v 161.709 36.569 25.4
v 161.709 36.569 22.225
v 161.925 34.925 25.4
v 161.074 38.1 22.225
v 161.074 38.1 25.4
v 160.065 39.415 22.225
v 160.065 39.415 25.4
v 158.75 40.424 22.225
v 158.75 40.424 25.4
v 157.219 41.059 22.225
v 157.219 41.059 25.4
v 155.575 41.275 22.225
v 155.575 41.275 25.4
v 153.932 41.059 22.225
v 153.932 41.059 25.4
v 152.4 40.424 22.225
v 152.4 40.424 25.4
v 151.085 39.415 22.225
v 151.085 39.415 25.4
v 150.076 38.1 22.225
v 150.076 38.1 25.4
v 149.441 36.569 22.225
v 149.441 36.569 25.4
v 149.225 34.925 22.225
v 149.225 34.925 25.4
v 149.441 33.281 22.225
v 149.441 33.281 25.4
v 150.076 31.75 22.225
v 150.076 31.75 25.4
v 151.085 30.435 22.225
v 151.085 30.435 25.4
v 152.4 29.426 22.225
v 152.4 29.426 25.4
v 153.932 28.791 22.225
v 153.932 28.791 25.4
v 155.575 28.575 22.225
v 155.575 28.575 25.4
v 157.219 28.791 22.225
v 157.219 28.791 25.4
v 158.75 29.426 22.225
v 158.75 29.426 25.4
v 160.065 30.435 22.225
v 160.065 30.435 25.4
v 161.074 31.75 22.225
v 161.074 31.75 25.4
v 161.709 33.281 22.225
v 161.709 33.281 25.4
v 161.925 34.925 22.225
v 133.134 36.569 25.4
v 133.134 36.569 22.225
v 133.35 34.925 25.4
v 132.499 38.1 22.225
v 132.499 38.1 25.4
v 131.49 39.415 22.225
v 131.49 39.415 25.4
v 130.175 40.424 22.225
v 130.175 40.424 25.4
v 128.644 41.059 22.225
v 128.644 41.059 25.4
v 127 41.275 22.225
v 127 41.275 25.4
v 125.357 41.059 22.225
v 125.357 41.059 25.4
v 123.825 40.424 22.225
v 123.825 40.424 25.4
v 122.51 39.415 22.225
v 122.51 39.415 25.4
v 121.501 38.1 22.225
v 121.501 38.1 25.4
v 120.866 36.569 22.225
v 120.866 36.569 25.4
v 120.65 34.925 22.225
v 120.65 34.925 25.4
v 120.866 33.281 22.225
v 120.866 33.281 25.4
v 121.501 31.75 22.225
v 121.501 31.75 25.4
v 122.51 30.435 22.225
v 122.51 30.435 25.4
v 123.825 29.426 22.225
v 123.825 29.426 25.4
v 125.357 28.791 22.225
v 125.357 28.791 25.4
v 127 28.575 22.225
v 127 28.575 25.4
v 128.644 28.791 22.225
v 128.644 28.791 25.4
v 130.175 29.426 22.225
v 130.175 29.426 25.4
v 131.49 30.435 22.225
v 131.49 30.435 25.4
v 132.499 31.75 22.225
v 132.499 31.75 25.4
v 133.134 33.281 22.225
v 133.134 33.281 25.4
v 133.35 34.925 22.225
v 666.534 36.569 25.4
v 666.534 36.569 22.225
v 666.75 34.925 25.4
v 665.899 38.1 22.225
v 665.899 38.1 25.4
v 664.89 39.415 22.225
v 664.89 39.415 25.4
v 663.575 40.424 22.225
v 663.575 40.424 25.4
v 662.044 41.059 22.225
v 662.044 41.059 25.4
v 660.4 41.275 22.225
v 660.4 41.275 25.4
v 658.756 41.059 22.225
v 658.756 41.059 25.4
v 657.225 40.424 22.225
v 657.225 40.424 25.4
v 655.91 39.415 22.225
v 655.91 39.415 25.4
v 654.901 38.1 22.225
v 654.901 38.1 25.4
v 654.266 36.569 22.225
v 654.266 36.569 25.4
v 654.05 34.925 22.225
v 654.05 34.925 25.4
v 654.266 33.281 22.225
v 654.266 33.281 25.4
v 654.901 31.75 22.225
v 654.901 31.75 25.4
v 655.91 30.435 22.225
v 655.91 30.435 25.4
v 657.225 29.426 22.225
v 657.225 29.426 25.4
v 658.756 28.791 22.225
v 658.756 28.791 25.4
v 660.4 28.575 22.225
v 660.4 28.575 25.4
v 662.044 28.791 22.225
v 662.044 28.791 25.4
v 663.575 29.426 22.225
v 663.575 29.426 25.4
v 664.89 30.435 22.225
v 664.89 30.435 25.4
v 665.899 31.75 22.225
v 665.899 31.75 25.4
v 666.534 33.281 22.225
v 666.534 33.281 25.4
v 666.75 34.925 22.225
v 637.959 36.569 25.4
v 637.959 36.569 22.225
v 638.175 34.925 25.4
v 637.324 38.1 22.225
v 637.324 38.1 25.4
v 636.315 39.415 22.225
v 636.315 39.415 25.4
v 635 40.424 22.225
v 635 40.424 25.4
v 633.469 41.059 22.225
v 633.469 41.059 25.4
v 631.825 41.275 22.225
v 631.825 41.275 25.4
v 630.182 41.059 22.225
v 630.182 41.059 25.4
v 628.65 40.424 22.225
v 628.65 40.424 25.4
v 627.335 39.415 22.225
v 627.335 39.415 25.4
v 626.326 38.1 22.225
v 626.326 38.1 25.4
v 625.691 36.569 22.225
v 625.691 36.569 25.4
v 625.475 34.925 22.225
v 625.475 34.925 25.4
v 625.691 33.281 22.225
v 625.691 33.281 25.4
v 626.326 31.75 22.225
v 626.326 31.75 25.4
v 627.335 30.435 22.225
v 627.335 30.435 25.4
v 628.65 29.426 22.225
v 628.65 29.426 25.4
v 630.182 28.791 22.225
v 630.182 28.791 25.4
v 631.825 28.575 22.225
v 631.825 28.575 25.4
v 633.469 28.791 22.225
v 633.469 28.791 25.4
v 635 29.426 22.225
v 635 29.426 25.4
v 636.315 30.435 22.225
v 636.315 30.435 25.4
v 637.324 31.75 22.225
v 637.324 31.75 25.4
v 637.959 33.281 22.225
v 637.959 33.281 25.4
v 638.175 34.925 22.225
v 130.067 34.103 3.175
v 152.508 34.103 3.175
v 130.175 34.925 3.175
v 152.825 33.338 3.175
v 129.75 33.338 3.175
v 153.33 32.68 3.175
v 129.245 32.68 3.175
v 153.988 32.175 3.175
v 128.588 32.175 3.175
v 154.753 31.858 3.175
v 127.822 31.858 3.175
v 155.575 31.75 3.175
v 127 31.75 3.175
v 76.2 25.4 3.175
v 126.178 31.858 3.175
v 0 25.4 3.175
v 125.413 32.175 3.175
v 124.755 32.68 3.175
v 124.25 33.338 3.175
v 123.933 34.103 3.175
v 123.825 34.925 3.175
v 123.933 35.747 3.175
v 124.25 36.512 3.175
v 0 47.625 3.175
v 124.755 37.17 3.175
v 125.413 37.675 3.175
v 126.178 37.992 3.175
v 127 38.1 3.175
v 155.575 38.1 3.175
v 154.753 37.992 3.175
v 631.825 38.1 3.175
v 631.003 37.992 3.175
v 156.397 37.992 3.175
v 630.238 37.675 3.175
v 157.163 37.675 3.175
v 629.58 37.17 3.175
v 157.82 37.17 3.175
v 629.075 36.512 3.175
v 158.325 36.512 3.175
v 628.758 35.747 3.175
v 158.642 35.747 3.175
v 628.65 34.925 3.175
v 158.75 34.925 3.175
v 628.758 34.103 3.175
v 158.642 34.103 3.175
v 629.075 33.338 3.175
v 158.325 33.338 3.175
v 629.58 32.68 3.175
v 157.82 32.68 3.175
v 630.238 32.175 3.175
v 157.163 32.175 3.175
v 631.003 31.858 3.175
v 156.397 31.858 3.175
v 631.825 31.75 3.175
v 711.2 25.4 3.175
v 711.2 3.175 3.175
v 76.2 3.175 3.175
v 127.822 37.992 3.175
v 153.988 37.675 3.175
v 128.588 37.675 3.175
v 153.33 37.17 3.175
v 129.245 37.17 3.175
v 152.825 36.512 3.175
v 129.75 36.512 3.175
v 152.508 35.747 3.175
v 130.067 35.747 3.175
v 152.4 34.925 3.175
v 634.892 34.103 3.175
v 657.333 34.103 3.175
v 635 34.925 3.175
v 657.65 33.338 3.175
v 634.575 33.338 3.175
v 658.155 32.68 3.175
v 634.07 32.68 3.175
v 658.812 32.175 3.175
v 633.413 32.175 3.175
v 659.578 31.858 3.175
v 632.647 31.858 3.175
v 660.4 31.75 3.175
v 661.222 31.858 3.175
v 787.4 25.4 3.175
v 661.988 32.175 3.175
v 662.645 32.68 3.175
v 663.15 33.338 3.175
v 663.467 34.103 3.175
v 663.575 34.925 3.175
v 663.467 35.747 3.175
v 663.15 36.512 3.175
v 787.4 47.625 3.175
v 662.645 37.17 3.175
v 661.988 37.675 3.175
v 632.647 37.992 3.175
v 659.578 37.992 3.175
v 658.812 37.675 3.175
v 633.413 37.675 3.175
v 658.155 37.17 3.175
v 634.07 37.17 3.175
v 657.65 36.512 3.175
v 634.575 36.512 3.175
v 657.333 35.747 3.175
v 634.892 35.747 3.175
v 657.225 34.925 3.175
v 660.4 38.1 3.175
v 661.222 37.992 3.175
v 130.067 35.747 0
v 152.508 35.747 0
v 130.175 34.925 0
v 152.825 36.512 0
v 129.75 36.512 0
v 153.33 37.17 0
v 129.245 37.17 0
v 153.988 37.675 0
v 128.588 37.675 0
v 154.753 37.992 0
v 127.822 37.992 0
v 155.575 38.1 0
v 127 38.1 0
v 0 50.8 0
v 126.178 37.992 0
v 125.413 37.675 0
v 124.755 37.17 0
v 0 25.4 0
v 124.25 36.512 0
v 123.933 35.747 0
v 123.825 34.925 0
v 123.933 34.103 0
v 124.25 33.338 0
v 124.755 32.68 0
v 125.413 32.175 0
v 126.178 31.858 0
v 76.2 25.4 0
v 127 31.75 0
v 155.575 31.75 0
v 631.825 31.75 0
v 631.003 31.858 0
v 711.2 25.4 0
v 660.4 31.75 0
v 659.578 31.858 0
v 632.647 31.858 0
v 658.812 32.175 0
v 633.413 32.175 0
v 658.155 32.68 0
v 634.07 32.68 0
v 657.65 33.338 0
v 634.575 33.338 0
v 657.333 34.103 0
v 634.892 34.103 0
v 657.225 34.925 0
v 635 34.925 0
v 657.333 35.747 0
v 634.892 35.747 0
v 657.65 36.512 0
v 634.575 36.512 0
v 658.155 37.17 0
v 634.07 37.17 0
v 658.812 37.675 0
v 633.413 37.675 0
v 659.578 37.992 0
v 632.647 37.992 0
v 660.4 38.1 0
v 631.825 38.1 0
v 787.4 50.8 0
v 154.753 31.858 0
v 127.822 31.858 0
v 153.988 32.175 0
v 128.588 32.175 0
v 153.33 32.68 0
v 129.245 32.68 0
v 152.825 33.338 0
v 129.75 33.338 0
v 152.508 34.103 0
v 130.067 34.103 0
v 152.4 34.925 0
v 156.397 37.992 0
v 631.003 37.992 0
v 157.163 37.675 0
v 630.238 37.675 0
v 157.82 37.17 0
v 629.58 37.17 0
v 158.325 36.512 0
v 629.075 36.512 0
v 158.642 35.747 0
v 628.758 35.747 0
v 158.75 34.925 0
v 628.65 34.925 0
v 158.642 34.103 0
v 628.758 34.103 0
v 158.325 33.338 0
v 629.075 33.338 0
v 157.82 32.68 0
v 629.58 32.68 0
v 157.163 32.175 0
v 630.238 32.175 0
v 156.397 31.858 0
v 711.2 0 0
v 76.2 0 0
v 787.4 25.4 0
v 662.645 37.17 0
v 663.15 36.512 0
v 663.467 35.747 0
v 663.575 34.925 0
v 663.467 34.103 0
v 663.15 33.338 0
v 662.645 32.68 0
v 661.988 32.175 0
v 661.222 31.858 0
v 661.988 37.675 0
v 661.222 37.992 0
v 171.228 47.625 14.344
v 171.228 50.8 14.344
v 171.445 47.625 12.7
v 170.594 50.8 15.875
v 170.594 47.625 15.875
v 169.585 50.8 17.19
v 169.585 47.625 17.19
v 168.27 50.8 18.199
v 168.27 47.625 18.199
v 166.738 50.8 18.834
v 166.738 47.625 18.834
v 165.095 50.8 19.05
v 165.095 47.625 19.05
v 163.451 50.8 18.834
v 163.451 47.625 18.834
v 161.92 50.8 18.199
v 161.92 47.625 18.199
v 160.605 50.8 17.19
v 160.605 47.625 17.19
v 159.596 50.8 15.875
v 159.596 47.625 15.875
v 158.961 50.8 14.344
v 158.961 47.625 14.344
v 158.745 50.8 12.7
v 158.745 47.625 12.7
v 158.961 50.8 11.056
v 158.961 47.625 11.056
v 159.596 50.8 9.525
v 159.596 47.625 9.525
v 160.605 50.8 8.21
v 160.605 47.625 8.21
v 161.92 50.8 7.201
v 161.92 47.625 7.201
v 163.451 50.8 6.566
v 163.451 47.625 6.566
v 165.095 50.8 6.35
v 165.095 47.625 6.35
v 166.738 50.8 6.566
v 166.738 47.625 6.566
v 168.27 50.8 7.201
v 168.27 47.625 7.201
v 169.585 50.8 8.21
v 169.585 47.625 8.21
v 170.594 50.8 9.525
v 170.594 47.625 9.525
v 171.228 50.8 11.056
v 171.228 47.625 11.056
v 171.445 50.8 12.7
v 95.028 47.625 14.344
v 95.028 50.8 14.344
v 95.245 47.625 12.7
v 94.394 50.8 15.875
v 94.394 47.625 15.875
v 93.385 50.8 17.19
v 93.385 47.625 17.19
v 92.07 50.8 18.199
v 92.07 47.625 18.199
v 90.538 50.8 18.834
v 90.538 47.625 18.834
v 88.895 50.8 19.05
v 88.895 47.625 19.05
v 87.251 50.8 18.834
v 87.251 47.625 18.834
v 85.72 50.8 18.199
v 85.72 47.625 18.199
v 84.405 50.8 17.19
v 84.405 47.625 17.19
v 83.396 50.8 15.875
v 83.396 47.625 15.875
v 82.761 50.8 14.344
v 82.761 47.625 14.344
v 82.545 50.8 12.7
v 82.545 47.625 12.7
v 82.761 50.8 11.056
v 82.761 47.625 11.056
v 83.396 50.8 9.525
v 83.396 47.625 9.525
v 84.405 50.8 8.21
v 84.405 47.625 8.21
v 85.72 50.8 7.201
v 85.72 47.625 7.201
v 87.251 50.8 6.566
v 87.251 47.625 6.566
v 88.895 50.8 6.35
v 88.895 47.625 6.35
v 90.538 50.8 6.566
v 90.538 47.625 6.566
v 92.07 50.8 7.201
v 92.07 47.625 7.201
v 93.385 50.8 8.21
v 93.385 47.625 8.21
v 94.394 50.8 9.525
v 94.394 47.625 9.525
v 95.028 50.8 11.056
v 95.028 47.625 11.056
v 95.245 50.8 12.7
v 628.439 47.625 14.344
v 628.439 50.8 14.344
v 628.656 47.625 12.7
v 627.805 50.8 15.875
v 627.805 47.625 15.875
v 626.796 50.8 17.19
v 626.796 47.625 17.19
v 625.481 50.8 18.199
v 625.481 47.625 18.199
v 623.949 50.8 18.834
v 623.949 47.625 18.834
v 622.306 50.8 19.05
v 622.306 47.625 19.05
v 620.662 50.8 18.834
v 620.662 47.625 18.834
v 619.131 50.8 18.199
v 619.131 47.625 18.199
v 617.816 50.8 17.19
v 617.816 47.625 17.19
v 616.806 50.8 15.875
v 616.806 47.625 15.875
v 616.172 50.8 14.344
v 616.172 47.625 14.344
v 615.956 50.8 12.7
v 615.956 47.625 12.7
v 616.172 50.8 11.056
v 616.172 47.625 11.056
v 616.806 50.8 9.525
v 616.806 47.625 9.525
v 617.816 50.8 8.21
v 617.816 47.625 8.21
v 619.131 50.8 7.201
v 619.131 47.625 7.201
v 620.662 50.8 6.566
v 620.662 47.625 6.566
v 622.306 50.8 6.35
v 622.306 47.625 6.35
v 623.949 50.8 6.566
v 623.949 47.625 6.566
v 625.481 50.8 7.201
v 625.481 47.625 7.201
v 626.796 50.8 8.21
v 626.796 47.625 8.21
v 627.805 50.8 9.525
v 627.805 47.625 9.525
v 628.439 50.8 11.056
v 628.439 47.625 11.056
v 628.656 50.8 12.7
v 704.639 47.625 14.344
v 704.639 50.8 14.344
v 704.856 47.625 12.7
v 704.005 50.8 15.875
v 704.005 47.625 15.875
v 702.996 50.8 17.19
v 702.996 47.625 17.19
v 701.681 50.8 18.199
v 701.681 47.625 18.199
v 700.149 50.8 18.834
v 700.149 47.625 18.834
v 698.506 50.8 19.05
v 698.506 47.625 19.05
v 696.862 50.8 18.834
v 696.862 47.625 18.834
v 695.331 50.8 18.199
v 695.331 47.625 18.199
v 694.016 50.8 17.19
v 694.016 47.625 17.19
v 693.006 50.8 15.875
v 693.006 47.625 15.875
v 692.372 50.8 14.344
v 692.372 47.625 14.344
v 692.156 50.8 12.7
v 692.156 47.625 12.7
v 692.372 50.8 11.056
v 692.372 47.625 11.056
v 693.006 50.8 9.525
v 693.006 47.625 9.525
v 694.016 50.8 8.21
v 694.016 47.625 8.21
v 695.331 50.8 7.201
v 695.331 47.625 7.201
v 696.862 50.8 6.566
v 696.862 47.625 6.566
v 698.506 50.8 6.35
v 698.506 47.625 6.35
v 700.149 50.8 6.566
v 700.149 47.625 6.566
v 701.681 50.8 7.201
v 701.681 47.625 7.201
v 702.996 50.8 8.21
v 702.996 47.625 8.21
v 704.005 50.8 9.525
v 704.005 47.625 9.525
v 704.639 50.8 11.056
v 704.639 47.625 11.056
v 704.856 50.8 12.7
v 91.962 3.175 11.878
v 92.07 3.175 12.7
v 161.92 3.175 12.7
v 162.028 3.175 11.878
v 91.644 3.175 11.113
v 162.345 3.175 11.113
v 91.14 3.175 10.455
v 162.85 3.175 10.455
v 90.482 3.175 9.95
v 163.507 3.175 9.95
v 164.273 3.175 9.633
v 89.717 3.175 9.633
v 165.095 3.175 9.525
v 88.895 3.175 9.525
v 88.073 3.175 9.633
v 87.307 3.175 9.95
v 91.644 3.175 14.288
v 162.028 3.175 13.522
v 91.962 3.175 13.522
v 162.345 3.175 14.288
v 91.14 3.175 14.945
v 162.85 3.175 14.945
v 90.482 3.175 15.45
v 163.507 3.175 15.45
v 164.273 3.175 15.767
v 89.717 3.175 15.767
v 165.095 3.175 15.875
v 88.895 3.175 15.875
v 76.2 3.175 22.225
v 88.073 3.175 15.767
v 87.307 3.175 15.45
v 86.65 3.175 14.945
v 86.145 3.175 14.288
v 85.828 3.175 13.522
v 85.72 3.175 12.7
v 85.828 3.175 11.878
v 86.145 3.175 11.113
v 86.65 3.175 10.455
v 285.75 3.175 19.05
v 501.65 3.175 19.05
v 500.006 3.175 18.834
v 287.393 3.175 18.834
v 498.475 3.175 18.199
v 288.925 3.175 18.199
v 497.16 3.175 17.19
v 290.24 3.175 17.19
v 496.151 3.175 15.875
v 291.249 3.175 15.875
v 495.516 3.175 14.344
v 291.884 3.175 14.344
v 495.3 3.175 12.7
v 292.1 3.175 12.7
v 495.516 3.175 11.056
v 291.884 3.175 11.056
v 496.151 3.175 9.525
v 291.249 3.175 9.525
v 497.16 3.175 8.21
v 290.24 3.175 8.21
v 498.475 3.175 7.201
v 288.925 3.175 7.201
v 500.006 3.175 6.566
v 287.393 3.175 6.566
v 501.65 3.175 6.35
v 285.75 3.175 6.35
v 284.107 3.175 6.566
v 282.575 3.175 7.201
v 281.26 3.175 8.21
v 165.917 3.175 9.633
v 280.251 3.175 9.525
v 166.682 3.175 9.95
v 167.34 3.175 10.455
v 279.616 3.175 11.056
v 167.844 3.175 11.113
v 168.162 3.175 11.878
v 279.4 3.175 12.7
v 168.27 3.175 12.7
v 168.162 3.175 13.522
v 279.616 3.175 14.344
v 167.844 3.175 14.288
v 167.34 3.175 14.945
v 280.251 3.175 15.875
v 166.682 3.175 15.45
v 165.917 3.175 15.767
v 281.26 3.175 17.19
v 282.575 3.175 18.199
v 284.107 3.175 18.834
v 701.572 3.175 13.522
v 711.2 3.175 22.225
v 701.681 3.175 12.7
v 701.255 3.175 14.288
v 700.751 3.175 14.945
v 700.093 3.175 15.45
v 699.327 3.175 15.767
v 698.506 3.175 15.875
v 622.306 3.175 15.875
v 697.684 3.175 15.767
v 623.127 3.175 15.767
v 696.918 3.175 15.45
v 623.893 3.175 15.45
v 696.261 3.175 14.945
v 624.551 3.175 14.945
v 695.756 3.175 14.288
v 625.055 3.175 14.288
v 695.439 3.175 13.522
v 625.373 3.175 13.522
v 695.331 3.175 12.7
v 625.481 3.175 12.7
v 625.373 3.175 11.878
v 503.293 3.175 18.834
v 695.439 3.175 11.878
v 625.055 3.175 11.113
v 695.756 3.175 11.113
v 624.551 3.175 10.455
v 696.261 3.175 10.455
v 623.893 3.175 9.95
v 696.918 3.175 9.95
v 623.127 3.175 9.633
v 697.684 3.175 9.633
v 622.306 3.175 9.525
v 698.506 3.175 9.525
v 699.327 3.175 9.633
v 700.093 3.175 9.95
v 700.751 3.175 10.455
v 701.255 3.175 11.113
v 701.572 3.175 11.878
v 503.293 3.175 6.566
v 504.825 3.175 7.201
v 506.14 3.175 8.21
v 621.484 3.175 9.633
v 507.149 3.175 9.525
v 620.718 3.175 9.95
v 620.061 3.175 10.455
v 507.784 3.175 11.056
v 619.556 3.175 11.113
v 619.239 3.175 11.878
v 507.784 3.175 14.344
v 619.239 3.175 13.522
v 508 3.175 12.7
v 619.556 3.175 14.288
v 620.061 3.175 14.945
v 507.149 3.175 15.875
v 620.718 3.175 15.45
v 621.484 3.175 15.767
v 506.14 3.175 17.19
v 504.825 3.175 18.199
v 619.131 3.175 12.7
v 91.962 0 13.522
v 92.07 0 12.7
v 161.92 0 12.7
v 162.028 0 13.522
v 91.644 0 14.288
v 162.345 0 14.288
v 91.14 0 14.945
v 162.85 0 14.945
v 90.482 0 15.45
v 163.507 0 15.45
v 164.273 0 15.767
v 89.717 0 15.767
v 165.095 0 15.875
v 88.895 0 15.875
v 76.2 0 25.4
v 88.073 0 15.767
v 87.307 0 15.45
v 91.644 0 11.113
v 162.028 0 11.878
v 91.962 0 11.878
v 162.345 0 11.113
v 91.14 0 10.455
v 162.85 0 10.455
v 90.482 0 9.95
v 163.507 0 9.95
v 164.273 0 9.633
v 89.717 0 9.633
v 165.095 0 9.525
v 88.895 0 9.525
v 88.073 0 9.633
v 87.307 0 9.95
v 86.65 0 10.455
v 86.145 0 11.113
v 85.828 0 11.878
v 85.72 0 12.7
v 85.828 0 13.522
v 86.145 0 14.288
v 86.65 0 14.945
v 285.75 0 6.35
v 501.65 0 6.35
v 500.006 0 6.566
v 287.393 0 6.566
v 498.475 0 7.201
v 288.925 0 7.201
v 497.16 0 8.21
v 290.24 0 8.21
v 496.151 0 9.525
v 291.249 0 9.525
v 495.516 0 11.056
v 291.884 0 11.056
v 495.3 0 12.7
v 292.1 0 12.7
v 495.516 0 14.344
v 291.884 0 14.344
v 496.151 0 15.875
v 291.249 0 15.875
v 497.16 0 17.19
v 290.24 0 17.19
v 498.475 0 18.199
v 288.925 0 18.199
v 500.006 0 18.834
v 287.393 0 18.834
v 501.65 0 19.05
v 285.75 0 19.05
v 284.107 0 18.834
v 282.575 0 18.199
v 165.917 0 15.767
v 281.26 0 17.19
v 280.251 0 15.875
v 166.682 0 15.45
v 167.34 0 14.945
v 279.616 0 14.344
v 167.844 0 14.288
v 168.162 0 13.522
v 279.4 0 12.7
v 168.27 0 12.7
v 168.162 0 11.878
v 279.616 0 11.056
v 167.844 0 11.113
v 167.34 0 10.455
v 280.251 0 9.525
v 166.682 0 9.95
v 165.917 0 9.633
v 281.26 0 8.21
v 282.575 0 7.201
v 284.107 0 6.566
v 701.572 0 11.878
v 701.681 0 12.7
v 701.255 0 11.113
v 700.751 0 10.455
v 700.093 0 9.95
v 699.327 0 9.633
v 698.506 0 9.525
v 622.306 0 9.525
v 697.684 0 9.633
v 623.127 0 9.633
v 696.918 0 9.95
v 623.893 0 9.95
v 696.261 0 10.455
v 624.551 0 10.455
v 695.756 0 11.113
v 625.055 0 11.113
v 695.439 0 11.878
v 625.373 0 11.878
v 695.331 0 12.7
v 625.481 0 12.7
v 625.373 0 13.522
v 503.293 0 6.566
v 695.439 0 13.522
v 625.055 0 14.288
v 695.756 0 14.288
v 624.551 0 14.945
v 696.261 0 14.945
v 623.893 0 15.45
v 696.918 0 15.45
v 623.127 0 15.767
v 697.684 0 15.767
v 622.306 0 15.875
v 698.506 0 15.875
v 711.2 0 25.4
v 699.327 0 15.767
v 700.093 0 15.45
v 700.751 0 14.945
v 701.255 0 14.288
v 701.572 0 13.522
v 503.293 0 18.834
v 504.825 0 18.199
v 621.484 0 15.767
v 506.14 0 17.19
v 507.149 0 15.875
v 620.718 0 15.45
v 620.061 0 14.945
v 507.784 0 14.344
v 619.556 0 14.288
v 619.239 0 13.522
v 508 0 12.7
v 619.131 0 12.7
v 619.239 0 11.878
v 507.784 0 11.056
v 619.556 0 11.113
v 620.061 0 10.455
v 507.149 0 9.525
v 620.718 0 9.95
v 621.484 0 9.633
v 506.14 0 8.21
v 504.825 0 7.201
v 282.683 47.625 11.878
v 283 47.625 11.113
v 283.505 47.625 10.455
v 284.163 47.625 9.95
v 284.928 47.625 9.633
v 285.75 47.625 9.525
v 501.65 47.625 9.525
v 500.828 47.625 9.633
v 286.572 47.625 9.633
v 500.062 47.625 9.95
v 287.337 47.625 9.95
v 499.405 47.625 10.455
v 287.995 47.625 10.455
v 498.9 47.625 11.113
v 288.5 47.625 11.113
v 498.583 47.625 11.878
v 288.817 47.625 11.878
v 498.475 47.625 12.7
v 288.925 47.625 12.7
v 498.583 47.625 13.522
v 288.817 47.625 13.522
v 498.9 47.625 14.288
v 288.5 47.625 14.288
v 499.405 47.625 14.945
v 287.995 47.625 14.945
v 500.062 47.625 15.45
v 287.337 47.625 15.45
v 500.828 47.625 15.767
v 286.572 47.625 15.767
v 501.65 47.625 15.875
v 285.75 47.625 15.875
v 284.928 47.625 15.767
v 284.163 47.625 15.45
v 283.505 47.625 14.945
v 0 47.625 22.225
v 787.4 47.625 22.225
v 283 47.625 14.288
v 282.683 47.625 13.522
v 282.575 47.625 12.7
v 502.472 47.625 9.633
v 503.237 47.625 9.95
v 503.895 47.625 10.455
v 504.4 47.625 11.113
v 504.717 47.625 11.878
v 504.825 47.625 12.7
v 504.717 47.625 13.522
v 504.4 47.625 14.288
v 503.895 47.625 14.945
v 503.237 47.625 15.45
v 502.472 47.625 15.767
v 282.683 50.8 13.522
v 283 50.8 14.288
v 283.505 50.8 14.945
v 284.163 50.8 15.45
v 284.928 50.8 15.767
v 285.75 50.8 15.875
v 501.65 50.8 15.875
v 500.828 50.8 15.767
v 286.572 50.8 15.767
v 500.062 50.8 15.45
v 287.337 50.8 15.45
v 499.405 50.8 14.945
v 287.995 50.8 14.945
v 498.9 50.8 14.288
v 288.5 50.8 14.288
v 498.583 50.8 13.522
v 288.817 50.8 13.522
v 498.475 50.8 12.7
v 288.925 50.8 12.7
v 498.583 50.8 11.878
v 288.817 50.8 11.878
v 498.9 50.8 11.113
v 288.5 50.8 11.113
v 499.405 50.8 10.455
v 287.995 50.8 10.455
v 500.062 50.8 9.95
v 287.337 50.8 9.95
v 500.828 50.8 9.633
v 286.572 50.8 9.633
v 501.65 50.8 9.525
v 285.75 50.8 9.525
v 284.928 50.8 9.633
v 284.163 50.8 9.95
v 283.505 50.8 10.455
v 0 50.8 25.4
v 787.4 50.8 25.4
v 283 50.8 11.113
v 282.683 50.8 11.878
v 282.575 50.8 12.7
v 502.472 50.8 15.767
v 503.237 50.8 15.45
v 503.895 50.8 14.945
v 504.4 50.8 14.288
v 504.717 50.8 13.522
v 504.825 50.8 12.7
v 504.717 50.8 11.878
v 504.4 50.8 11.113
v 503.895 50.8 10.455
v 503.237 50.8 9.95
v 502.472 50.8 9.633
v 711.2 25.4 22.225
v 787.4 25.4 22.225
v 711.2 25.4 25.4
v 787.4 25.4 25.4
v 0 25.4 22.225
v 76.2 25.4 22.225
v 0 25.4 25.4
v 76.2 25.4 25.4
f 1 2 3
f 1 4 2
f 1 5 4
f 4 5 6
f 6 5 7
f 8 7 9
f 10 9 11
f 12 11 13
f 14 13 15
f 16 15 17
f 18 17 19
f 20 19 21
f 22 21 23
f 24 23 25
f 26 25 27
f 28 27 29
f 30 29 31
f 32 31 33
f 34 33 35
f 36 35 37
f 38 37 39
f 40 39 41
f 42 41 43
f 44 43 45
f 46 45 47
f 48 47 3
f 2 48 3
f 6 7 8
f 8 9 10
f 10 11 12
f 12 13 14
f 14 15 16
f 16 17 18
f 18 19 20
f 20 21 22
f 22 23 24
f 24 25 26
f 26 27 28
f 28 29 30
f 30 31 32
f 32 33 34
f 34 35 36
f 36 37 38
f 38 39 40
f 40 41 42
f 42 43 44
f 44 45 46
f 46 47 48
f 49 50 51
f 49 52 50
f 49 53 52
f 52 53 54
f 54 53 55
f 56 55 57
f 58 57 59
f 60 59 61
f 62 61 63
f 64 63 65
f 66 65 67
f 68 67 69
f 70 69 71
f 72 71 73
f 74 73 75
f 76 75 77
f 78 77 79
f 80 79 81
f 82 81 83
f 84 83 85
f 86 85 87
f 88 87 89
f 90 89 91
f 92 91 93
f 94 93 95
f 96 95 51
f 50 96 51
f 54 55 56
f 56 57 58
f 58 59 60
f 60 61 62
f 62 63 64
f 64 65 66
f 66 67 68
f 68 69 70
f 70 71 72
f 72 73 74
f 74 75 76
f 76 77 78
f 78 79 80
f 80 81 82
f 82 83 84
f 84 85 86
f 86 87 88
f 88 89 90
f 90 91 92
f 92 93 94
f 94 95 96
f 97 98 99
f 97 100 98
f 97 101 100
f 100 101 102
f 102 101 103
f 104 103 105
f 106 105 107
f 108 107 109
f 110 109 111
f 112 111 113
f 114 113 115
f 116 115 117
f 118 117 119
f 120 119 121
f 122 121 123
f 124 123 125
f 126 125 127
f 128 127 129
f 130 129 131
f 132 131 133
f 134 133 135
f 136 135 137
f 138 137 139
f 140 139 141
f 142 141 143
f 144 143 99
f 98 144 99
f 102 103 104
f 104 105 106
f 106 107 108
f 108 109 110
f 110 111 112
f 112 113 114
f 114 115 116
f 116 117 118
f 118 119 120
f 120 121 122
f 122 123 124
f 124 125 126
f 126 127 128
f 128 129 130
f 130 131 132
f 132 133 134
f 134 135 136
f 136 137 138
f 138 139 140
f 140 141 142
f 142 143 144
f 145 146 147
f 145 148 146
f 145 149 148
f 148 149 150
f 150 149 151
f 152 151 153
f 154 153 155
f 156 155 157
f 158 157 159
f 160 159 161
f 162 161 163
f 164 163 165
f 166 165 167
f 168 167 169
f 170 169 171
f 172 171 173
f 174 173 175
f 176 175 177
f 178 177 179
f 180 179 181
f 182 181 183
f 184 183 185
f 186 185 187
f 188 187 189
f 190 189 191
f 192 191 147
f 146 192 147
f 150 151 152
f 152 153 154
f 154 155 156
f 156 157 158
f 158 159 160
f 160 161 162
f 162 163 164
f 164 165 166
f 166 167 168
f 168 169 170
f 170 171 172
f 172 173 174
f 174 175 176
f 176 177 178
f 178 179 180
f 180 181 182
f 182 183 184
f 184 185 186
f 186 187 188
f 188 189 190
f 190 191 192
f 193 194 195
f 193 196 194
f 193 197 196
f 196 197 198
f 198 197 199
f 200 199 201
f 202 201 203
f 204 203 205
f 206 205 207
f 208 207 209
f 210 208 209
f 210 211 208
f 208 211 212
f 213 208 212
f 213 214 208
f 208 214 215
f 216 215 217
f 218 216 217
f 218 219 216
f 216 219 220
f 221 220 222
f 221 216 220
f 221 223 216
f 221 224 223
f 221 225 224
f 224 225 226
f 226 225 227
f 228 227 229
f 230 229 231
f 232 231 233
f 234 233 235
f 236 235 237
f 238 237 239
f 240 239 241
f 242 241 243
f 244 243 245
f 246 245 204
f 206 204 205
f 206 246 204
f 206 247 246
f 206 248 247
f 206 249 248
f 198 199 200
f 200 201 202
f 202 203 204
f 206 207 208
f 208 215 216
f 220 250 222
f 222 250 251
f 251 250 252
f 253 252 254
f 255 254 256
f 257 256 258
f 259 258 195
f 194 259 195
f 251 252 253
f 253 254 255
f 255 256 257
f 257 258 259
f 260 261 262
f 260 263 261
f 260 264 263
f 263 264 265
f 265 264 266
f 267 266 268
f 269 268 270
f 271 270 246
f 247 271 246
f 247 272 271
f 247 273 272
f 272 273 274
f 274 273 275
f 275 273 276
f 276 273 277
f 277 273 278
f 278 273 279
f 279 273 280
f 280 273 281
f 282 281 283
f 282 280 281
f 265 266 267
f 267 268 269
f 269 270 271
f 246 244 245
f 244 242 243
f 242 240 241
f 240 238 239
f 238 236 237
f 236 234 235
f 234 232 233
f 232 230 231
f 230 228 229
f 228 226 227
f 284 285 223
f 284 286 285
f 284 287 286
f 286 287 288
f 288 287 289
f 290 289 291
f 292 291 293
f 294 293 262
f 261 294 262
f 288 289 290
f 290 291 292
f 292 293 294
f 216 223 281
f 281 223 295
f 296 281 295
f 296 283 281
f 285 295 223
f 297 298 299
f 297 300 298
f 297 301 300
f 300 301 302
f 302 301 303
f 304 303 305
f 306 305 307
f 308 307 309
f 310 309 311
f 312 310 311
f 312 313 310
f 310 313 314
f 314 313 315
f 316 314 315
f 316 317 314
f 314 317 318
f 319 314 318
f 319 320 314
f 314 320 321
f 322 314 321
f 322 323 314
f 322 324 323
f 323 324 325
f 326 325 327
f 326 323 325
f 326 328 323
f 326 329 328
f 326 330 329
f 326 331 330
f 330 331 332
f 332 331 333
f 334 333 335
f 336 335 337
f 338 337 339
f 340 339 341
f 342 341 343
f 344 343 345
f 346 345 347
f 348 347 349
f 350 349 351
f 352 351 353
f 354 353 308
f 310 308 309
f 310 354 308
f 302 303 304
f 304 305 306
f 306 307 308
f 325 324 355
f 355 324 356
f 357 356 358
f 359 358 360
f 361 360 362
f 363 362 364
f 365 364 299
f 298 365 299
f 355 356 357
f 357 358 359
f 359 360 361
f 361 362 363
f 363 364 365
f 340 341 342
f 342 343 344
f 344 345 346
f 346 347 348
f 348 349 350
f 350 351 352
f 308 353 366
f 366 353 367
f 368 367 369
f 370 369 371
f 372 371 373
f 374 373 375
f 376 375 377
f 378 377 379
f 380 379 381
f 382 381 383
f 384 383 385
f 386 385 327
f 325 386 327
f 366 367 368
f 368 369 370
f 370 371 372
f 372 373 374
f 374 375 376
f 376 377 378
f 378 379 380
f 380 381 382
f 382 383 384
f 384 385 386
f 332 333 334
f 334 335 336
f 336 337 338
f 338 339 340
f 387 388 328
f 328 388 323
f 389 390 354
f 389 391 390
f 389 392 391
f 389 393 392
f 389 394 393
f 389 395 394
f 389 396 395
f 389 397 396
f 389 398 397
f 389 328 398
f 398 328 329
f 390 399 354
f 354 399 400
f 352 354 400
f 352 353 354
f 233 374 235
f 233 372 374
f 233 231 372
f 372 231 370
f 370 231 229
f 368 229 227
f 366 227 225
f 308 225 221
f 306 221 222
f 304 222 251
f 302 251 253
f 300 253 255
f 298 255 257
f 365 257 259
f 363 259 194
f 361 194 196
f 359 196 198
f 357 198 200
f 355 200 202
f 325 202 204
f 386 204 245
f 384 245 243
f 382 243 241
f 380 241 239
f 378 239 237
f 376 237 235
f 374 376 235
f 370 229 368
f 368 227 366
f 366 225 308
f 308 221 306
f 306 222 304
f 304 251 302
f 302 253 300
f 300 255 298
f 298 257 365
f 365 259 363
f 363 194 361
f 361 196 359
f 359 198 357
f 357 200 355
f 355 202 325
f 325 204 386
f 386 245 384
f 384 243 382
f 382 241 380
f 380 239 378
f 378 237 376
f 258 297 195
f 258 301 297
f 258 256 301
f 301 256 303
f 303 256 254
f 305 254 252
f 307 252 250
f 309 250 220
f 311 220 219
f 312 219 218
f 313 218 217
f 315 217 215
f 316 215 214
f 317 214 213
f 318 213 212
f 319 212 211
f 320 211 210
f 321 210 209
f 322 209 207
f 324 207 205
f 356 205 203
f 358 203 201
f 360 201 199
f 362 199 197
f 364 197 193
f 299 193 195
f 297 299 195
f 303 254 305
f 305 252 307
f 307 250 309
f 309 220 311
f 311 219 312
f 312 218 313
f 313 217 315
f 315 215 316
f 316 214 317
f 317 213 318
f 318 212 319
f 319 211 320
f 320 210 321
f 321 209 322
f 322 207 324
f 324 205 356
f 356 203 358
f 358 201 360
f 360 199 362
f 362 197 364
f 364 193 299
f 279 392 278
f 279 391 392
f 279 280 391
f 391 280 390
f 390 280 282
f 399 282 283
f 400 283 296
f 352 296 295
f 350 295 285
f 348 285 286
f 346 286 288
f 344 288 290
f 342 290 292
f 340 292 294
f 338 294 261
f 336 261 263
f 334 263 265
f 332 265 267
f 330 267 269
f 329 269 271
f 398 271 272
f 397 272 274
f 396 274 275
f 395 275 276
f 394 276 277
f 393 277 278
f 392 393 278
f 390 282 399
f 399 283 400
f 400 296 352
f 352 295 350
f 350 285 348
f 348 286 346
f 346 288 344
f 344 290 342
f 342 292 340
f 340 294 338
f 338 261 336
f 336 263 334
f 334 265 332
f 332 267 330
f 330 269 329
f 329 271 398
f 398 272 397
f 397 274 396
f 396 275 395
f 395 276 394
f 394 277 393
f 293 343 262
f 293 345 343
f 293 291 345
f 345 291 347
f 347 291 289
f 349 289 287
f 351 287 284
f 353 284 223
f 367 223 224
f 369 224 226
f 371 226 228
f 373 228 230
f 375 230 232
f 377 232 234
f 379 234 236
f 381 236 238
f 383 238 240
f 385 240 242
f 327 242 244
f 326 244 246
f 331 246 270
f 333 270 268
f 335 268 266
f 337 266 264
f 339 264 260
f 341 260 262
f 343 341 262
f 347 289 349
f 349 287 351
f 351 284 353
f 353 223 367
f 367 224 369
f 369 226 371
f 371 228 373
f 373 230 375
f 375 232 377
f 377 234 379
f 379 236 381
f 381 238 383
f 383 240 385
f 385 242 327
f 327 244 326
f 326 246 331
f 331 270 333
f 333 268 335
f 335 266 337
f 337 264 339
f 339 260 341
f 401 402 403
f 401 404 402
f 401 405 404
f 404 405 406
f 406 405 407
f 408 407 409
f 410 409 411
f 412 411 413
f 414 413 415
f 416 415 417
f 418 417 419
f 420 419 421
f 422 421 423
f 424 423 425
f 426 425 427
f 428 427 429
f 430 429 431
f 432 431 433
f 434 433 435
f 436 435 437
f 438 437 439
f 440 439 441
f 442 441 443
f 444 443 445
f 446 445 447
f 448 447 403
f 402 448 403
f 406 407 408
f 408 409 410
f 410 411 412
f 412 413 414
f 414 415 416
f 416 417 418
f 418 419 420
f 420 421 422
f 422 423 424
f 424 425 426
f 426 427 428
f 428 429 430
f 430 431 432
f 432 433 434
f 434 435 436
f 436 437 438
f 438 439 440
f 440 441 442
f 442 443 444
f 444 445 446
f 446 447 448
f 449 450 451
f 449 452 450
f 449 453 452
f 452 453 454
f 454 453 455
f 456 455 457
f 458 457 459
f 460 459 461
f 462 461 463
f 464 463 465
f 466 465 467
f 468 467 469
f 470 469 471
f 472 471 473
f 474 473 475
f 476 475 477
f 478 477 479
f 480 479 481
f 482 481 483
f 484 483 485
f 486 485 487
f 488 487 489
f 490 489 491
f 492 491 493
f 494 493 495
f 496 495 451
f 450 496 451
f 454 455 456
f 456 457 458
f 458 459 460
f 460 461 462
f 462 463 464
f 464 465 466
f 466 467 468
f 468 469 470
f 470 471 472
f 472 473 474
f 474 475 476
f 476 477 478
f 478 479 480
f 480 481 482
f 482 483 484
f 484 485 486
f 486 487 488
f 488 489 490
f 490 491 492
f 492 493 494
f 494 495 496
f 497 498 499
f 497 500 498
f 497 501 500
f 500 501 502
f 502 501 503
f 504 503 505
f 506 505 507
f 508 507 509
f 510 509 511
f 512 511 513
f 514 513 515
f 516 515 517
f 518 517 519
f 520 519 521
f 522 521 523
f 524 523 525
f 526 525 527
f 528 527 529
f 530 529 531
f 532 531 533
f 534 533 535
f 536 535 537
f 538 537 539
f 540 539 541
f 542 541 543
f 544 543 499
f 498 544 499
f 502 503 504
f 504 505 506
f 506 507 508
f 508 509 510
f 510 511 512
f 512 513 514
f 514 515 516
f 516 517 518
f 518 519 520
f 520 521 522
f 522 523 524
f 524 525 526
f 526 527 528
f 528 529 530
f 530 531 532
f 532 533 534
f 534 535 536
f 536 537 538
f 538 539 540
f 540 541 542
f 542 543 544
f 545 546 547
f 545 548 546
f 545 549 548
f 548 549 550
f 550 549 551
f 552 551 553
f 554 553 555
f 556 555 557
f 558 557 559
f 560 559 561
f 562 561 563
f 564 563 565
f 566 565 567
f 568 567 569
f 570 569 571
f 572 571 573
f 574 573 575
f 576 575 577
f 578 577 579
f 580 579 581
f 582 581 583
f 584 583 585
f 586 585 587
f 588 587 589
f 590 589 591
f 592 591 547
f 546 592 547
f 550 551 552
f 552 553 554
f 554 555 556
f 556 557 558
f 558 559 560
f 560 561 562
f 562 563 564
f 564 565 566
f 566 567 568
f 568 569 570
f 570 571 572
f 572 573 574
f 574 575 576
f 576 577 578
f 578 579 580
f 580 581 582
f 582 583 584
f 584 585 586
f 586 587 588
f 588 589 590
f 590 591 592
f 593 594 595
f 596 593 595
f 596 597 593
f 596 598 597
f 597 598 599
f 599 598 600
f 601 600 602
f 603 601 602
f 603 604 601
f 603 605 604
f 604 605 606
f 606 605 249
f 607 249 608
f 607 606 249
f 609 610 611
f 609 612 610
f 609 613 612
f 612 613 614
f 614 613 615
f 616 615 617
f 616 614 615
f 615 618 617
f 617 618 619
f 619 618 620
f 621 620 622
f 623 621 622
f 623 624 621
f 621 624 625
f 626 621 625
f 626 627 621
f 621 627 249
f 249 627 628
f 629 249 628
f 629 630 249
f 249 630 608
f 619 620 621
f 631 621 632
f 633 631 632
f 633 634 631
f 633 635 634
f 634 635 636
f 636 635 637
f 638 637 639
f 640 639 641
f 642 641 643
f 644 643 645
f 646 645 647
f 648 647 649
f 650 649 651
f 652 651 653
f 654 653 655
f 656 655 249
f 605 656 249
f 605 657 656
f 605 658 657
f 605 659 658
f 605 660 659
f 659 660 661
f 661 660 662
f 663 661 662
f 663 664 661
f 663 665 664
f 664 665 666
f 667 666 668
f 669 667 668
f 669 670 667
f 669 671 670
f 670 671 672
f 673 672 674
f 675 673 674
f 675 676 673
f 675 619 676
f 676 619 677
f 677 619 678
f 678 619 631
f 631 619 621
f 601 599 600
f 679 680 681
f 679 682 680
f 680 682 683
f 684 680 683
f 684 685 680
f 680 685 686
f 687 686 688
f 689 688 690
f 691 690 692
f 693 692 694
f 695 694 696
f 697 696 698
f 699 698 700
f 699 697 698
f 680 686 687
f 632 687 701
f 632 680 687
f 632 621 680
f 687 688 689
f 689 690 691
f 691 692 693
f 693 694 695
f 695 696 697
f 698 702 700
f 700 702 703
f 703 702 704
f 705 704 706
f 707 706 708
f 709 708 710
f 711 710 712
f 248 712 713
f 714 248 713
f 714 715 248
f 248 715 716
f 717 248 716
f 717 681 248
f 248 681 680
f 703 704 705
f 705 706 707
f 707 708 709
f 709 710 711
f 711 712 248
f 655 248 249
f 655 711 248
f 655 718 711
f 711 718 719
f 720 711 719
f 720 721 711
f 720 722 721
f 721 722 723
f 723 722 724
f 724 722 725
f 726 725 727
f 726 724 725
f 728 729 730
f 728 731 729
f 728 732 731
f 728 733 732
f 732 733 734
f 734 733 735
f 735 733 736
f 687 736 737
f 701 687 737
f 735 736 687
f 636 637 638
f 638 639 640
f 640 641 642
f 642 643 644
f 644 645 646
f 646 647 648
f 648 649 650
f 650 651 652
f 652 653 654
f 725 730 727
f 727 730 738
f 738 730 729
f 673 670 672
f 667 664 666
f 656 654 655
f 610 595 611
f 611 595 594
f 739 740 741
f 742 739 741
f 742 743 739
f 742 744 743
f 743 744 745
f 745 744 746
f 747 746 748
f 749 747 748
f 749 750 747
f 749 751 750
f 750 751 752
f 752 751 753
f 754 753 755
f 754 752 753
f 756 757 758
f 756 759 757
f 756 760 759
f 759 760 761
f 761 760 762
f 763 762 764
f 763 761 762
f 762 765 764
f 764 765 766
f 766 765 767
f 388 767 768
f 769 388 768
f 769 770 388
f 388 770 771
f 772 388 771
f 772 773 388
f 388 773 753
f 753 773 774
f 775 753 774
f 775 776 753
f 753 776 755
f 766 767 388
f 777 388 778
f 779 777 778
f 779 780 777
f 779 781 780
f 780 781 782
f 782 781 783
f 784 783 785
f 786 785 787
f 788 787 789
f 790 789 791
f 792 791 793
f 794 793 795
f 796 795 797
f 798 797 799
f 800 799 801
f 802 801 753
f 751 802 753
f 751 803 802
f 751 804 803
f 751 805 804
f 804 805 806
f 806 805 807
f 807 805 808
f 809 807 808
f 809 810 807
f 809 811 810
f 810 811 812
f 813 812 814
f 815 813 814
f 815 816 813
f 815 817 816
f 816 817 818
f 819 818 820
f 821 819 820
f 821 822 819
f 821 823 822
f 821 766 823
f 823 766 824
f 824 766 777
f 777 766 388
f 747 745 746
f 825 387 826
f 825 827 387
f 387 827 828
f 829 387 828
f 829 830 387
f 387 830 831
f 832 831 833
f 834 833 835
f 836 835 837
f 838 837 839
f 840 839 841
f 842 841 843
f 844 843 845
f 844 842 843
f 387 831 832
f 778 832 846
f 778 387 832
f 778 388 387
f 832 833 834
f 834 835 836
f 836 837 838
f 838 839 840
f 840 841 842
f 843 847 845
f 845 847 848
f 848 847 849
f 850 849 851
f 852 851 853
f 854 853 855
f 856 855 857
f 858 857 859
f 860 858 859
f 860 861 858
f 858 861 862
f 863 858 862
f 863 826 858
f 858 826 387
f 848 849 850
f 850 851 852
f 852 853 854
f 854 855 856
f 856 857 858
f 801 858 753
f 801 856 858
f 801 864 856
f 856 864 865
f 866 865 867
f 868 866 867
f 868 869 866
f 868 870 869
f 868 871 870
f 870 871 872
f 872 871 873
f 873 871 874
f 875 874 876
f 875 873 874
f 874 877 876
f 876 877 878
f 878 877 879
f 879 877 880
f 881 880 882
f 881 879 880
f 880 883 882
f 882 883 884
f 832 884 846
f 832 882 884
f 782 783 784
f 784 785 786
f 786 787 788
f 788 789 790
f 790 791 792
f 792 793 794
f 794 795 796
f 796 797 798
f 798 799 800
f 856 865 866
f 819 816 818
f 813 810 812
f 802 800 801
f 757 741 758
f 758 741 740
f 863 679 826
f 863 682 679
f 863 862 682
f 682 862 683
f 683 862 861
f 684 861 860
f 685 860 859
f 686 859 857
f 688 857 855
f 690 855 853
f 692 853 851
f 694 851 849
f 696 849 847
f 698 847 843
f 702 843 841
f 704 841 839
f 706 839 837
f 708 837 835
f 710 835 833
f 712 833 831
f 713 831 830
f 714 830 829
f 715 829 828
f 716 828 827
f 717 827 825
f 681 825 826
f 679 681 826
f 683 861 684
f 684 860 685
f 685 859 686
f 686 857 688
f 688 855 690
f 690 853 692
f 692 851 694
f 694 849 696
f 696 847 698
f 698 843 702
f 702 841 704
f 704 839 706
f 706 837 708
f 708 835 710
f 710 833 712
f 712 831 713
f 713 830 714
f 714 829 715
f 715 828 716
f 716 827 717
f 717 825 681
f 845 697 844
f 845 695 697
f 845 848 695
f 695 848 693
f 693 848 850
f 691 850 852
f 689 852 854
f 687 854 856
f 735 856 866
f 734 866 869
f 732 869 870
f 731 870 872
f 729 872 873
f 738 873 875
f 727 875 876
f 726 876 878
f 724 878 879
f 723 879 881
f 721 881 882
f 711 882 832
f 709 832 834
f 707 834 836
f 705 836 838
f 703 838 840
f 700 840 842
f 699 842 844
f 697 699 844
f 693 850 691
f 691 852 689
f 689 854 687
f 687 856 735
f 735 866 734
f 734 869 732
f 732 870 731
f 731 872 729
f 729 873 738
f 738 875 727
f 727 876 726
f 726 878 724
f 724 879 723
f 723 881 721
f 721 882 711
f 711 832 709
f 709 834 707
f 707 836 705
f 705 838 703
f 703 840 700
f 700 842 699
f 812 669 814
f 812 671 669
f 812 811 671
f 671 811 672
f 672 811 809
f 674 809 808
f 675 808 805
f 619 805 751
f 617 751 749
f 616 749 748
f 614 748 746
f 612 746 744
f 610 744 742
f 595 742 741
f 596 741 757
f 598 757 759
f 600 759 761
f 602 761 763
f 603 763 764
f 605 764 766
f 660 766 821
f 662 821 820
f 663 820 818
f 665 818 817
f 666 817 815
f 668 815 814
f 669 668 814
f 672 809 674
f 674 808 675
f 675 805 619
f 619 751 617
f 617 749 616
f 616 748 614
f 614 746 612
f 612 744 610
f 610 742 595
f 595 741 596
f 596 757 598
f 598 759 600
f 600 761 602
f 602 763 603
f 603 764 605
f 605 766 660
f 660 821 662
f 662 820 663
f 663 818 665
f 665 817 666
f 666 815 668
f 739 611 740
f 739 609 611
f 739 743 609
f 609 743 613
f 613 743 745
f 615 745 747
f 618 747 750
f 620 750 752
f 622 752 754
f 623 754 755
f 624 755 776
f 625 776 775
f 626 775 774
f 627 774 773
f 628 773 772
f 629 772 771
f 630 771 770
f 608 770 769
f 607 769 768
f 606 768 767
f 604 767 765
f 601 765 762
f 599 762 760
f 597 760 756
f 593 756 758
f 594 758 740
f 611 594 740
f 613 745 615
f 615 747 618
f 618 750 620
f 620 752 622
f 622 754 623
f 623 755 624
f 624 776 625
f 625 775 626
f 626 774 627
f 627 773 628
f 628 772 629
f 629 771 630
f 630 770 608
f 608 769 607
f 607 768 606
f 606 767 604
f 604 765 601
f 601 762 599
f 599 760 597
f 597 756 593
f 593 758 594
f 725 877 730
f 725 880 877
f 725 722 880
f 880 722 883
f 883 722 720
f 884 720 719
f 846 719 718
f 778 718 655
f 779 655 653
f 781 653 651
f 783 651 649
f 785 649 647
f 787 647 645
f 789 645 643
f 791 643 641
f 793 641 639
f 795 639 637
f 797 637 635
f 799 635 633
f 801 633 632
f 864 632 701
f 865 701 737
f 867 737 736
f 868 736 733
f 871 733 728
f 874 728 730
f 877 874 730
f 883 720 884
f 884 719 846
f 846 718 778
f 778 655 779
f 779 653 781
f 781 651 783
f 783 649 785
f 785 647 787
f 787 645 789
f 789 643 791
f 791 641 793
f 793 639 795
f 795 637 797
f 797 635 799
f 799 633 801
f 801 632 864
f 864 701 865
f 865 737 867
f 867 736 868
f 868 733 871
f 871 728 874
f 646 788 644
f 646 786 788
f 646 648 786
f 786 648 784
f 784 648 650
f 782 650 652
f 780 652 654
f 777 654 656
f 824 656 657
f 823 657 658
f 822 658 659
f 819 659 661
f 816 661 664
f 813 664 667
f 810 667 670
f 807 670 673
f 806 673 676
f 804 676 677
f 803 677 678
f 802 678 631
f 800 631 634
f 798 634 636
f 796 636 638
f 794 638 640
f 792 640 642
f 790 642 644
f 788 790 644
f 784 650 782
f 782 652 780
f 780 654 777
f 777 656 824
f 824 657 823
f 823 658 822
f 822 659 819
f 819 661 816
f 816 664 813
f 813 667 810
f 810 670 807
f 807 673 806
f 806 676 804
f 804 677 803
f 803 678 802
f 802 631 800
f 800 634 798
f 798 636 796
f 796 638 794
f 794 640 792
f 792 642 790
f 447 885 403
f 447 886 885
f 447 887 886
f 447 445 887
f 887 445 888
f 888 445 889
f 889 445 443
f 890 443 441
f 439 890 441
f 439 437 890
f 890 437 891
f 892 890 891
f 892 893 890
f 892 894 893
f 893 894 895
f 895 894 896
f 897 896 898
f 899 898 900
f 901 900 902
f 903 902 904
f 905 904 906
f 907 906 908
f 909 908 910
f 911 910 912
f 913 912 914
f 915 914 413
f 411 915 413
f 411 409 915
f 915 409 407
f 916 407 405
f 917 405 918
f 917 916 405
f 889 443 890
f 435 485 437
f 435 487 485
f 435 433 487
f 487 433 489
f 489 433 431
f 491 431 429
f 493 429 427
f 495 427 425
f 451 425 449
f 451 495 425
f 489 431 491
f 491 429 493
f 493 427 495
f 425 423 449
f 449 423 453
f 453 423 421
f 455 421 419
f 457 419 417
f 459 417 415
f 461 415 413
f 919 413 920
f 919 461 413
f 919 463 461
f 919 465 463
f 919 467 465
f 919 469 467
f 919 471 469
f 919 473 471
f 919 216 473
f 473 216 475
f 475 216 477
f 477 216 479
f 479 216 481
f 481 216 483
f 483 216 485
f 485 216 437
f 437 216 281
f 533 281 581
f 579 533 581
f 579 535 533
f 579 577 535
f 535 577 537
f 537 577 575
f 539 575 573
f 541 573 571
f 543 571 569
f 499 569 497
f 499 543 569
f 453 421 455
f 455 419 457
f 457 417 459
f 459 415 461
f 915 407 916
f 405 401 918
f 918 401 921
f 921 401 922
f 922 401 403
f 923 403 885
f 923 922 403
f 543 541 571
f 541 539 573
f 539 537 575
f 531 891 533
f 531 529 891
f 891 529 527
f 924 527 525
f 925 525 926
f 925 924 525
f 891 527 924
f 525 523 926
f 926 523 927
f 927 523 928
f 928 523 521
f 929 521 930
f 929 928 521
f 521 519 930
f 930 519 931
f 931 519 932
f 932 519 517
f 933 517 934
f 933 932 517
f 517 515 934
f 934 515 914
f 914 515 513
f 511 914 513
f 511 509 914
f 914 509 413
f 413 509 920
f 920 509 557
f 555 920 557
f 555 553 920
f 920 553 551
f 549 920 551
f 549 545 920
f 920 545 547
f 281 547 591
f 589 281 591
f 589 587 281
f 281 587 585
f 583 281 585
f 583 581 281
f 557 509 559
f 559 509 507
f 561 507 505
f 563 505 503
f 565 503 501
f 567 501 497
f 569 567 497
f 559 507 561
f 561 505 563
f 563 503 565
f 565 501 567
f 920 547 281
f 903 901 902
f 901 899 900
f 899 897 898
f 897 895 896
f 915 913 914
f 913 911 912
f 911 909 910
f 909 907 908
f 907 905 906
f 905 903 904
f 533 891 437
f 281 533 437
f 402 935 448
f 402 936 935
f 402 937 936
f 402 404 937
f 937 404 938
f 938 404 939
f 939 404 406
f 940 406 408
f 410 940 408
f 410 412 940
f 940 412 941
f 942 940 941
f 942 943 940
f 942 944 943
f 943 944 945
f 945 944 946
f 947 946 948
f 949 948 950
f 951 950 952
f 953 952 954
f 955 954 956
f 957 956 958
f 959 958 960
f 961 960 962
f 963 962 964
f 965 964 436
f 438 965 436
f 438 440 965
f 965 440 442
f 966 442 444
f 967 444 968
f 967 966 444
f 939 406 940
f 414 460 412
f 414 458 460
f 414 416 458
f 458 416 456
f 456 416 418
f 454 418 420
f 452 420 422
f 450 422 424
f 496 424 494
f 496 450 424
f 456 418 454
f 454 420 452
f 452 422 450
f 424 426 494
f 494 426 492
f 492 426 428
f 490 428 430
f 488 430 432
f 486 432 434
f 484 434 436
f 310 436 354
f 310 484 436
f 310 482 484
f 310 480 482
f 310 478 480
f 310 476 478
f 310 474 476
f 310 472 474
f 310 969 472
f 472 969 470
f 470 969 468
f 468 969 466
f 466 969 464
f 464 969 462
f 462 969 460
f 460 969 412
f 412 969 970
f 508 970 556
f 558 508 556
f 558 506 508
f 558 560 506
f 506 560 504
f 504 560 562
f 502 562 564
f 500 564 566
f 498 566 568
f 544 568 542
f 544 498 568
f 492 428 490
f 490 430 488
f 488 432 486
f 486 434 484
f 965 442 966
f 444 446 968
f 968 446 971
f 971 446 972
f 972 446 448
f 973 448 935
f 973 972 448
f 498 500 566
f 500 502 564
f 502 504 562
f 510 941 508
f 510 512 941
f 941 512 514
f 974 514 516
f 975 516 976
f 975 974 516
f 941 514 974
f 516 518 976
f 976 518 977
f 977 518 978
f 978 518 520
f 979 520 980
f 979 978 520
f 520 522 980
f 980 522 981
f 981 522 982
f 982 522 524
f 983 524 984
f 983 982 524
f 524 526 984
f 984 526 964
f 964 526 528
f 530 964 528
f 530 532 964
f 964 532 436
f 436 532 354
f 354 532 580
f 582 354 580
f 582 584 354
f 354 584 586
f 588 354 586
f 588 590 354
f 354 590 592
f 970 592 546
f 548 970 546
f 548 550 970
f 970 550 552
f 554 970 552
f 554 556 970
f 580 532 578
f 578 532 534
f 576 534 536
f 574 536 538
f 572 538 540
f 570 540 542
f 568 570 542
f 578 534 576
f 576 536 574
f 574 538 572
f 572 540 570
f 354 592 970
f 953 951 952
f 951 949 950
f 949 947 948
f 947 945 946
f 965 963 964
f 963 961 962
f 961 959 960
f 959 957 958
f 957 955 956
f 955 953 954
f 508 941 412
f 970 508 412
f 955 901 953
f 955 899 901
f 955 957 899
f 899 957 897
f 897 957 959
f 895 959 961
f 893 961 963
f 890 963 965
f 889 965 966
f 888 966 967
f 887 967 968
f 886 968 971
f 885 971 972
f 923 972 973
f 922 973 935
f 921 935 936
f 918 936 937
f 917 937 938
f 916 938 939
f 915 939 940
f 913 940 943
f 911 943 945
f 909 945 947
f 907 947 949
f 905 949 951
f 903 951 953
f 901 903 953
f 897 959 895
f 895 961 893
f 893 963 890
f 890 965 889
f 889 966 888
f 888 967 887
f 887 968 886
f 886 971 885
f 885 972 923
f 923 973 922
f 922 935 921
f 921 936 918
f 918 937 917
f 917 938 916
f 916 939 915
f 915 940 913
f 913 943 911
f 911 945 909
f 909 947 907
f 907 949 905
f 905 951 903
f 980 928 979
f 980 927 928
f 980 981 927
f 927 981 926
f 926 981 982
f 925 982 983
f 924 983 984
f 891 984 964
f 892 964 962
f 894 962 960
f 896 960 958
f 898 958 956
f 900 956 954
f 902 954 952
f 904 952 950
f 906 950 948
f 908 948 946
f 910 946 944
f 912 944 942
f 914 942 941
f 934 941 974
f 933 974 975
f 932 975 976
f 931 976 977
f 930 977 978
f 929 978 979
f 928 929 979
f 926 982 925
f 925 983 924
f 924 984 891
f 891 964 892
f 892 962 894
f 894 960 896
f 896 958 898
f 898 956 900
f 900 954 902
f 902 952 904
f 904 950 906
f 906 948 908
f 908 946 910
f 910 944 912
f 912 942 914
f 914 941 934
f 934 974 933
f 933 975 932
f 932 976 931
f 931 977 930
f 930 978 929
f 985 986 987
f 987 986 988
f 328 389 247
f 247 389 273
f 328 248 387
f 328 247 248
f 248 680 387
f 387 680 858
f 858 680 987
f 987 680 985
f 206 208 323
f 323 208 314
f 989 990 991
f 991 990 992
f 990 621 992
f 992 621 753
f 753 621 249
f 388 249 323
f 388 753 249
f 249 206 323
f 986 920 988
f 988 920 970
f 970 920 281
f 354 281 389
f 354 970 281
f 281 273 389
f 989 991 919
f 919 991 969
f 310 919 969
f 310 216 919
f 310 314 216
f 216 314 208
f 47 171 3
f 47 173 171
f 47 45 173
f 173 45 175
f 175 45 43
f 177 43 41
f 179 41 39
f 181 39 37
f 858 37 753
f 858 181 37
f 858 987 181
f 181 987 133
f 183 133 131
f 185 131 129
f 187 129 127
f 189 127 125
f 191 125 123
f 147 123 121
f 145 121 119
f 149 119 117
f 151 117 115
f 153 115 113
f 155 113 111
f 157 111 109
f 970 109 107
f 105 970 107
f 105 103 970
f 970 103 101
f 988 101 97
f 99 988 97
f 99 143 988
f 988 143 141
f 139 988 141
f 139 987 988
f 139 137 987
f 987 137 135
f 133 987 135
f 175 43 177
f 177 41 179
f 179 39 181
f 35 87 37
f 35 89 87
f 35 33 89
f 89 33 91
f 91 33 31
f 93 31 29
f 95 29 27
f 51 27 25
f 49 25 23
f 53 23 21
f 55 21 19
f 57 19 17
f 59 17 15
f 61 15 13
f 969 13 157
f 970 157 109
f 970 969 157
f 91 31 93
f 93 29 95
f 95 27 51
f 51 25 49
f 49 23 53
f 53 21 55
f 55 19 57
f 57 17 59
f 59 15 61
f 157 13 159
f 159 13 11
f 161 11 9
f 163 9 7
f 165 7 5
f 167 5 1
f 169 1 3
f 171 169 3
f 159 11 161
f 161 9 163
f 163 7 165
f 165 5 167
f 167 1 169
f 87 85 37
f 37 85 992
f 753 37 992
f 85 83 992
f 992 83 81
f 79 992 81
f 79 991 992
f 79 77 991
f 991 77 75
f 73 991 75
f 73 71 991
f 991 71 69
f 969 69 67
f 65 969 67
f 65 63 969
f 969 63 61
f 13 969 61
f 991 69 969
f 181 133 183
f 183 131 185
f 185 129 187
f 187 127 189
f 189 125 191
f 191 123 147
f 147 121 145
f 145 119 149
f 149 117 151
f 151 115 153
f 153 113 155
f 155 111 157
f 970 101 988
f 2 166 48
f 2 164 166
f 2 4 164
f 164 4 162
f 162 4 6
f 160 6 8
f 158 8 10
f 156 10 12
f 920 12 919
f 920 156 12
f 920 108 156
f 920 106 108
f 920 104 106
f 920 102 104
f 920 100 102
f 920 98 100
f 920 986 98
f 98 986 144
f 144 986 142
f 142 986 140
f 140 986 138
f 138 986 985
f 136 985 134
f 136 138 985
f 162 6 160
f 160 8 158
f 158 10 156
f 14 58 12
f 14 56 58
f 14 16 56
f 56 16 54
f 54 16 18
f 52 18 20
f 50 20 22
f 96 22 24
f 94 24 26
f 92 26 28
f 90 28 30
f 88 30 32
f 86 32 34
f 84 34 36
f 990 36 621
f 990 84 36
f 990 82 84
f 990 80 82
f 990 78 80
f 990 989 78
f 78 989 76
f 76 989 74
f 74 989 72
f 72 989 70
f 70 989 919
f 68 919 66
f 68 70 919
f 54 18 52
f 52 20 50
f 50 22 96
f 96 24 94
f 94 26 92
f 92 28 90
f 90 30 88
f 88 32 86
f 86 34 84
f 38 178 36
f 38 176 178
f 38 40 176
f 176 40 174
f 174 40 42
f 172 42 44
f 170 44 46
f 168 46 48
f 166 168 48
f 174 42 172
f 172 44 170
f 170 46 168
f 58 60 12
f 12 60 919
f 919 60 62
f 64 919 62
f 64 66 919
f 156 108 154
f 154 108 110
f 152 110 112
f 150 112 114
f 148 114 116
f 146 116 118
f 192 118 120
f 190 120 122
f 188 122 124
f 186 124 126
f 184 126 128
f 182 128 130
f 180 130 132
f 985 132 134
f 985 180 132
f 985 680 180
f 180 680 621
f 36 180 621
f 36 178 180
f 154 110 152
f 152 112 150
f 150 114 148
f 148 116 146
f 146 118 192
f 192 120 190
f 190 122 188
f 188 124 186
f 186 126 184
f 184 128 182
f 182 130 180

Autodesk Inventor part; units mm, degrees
ref_plane "YZ Plane" through (0, 0, 0) normal (1, 0, 0) x (0, 1, 0)
ref_plane "XZ Plane" through (0, 0, 0) normal (0, 1, 0) x (-1, 0, 0)
ref_plane "XY Plane" through (0, 0, 0) normal (0, 0, 1) x (1, 0, 0)
sketch "Sketch1" plane through (0, 0, 0) normal (0, 0, 1) x (1, 0, 0)
  line L0 (0, 0) -> (787.4, 0)
  line L1 (787.4, 0) -> (787.4, 50.8)
  line L2 (787.4, 50.8) -> (565.5048, 50.8)
  line L3 (565.5048, 50.8) -> (348.1028, 50.8)
  line L4 (348.1028, 50.8) -> (130.7008, 50.8)
  line L5 (130.7008, 50.8) -> (0, 50.8)
  line L6 (0, 50.8) -> (0, 0)
  dimension "d2" = 50.8
  dimension "d3" = 50.8
  dimension "d4" = 787.4
extrude "Extrusion1" add sketch "Sketch1" along normal blind 25.4
shell "Shell1" thickness 3.175 removed faces 2 at (0, 33.8667, 16.9333) at (787.4, 16.9333, 16.9333)
sketch "Sketch2" plane through (0, 0, 25.4) normal (0, 0, 1) x (1, 0, 0)
  line L0 (0, 0) -> (76.2, 0)
  line L1 (76.2, 0) -> (76.2, 25.4)
  line L2 (76.2, 25.4) -> (0, 25.4)
  line L3 (0, 25.4) -> (0, 0)
  line L4 (787.4, 0) -> (711.2, 0)
  line L5 (711.2, 0) -> (711.2, 25.4)
  line L6 (711.2, 25.4) -> (787.4, 25.4)
  line L7 (787.4, 25.4) -> (787.4, 0)
  dimension "d9" = 25.4
  dimension "d12" = 76.2
extrude "Extrusion2" cut sketch "Sketch2" against normal through all
sketch "Sketch4" plane through (0, 50.8, 0) normal (0, 1, 0) x (1, 0, 0)
  line L0 (787.4, 0) -> (787.4, -25.4) projected
  line L1 (787.4, 0) -> (0, 0) projected
  circle A0 centre (501.65, -12.7) radius 3.175
  circle A1 centre (285.75, -12.7) radius 3.175
  dimension "d21" = 285.75
  dimension "d22" = 215.9
  dimension "d23" = 12.7
  dimension "d24" = 12.7
  dimension "d25" = 6.35
  dimension "d26" = 6.35
extrude "Extrusion4" cut sketch "Sketch4" against normal through all
sketch "Sketch5" plane through (76.2, 0, 0) normal (0, -1, 0) x (1, 0, 0)
  circle A0 centre (209.55, 12.7) radius 3.175 projected
  circle A1 centre (425.45, 12.7) radius 3.175 projected
  circle A2 centre (209.55, 12.7) radius 6.35
  circle A3 centre (425.45, 12.7) radius 6.35
  point P0 (-76.2, 0)
  dimension "d29" = 12.7
  dimension "d30" = 12.7
extrude "Extrusion5" cut sketch "Sketch5" against normal up to next
sketch "Sketch6" plane through (76.2, 0, 0) normal (0, -1, 0) x (1, 0, 0)
  line L0 (635, 25.4) -> (0, 25.4) projected
  circle A0 centre (12.6948, 12.7) radius 3.175
  circle A1 centre (88.8948, 12.7) radius 3.175
  circle A2 centre (546.1057, 12.7) radius 3.175
  circle A3 centre (622.3057, 12.7) radius 3.175
  line L1 (711.2, 22.225) -> (711.2, 3.175) projected
  line L2 (-76.2, 3.175) -> (-76.2, 22.225) projected
  point P0 (-76.2, 0)
  dimension "d33" = 88.8943
  dimension "d34" = 76.2
  dimension "d35" = 6.35
  dimension "d36" = 12.7
  dimension "d37" = 12.7
  dimension "d38" = 12.7
  dimension "d39" = 12.7
  dimension "d40" = 88.8948
  dimension "d41" = 76.2
extrude "Extrusion6" cut sketch "Sketch6" against normal through all
sketch "Sketch7" plane through (0, 50.8, 0) normal (0, 1, 0) x (1, 0, 0)
  circle A0 centre (698.5057, -12.7) radius 3.175 projected
  circle A1 centre (622.3057, -12.7) radius 3.175 projected
  circle A2 centre (165.0948, -12.7) radius 3.175 projected
  circle A3 centre (88.8948, -12.7) radius 3.175 projected
  circle A4 centre (698.5057, -12.7) radius 6.35
  circle A5 centre (622.3057, -12.7) radius 6.35
  circle A6 centre (88.8948, -12.7) radius 6.35
  circle A7 centre (165.0948, -12.7) radius 6.35
  dimension "d44" = 12.7
extrude "Extrusion7" cut sketch "Sketch7" against normal up to next
sketch "Sketch8" plane through (0, 0, 25.4) normal (0, 0, 1) x (1, 0, 0)
  line L0 (787.4, 50.8) -> (787.4, 25.4) projected
  line L1 (0, 50.8) -> (787.4, 50.8) projected
  circle A0 centre (631.825, 34.925) radius 3.175
  circle A1 centre (660.4, 34.925) radius 3.175
  line L2 (631.825, 34.925) -> (660.4, 34.925) construction
  line L3 (0, 25.4) -> (0, 50.8) projected
  line L4 (631.825, 34.925) -> (155.575, 34.925) construction
  line L5 (155.575, 34.925) -> (127, 34.925) construction
  line L6 (127, 34.925) -> (0, 34.925) construction
  circle A2 centre (127, 34.925) radius 3.175
  circle A3 centre (155.575, 34.925) radius 3.175
  point P0 (0, 0)
  dimension "d47" = 127
  dimension "d48" = 28.575
  dimension "d49" = 15.875
  dimension "d50" = 6.35
  dimension "d53" = 127
  dimension "d54" = 28.575
  dimension "d55" = 476.25
extrude "Extrusion8" cut sketch "Sketch8" against normal through all
sketch "Sketch9" plane through (0, 0, 25.4) normal (0, 0, 1) x (1, 0, 0)
  circle A0 centre (155.575, 34.925) radius 3.175 projected
  circle A1 centre (127, 34.925) radius 3.175 projected
  circle A2 centre (660.4, 34.925) radius 3.175 projected
  circle A3 centre (631.825, 34.925) radius 3.175 projected
  circle A4 centre (631.825, 34.925) radius 6.35
  circle A5 centre (660.4, 34.925) radius 6.35
  circle A6 centre (127, 34.925) radius 6.35
  circle A7 centre (155.575, 34.925) radius 6.35
  point P0 (0, 0)
  dimension "d56" = 12.7
extrude "Extrusion9" cut sketch "Sketch9" against normal up to next
properties part number "FrameRepresentation_FrontRear" material "Aluminum-6061"
